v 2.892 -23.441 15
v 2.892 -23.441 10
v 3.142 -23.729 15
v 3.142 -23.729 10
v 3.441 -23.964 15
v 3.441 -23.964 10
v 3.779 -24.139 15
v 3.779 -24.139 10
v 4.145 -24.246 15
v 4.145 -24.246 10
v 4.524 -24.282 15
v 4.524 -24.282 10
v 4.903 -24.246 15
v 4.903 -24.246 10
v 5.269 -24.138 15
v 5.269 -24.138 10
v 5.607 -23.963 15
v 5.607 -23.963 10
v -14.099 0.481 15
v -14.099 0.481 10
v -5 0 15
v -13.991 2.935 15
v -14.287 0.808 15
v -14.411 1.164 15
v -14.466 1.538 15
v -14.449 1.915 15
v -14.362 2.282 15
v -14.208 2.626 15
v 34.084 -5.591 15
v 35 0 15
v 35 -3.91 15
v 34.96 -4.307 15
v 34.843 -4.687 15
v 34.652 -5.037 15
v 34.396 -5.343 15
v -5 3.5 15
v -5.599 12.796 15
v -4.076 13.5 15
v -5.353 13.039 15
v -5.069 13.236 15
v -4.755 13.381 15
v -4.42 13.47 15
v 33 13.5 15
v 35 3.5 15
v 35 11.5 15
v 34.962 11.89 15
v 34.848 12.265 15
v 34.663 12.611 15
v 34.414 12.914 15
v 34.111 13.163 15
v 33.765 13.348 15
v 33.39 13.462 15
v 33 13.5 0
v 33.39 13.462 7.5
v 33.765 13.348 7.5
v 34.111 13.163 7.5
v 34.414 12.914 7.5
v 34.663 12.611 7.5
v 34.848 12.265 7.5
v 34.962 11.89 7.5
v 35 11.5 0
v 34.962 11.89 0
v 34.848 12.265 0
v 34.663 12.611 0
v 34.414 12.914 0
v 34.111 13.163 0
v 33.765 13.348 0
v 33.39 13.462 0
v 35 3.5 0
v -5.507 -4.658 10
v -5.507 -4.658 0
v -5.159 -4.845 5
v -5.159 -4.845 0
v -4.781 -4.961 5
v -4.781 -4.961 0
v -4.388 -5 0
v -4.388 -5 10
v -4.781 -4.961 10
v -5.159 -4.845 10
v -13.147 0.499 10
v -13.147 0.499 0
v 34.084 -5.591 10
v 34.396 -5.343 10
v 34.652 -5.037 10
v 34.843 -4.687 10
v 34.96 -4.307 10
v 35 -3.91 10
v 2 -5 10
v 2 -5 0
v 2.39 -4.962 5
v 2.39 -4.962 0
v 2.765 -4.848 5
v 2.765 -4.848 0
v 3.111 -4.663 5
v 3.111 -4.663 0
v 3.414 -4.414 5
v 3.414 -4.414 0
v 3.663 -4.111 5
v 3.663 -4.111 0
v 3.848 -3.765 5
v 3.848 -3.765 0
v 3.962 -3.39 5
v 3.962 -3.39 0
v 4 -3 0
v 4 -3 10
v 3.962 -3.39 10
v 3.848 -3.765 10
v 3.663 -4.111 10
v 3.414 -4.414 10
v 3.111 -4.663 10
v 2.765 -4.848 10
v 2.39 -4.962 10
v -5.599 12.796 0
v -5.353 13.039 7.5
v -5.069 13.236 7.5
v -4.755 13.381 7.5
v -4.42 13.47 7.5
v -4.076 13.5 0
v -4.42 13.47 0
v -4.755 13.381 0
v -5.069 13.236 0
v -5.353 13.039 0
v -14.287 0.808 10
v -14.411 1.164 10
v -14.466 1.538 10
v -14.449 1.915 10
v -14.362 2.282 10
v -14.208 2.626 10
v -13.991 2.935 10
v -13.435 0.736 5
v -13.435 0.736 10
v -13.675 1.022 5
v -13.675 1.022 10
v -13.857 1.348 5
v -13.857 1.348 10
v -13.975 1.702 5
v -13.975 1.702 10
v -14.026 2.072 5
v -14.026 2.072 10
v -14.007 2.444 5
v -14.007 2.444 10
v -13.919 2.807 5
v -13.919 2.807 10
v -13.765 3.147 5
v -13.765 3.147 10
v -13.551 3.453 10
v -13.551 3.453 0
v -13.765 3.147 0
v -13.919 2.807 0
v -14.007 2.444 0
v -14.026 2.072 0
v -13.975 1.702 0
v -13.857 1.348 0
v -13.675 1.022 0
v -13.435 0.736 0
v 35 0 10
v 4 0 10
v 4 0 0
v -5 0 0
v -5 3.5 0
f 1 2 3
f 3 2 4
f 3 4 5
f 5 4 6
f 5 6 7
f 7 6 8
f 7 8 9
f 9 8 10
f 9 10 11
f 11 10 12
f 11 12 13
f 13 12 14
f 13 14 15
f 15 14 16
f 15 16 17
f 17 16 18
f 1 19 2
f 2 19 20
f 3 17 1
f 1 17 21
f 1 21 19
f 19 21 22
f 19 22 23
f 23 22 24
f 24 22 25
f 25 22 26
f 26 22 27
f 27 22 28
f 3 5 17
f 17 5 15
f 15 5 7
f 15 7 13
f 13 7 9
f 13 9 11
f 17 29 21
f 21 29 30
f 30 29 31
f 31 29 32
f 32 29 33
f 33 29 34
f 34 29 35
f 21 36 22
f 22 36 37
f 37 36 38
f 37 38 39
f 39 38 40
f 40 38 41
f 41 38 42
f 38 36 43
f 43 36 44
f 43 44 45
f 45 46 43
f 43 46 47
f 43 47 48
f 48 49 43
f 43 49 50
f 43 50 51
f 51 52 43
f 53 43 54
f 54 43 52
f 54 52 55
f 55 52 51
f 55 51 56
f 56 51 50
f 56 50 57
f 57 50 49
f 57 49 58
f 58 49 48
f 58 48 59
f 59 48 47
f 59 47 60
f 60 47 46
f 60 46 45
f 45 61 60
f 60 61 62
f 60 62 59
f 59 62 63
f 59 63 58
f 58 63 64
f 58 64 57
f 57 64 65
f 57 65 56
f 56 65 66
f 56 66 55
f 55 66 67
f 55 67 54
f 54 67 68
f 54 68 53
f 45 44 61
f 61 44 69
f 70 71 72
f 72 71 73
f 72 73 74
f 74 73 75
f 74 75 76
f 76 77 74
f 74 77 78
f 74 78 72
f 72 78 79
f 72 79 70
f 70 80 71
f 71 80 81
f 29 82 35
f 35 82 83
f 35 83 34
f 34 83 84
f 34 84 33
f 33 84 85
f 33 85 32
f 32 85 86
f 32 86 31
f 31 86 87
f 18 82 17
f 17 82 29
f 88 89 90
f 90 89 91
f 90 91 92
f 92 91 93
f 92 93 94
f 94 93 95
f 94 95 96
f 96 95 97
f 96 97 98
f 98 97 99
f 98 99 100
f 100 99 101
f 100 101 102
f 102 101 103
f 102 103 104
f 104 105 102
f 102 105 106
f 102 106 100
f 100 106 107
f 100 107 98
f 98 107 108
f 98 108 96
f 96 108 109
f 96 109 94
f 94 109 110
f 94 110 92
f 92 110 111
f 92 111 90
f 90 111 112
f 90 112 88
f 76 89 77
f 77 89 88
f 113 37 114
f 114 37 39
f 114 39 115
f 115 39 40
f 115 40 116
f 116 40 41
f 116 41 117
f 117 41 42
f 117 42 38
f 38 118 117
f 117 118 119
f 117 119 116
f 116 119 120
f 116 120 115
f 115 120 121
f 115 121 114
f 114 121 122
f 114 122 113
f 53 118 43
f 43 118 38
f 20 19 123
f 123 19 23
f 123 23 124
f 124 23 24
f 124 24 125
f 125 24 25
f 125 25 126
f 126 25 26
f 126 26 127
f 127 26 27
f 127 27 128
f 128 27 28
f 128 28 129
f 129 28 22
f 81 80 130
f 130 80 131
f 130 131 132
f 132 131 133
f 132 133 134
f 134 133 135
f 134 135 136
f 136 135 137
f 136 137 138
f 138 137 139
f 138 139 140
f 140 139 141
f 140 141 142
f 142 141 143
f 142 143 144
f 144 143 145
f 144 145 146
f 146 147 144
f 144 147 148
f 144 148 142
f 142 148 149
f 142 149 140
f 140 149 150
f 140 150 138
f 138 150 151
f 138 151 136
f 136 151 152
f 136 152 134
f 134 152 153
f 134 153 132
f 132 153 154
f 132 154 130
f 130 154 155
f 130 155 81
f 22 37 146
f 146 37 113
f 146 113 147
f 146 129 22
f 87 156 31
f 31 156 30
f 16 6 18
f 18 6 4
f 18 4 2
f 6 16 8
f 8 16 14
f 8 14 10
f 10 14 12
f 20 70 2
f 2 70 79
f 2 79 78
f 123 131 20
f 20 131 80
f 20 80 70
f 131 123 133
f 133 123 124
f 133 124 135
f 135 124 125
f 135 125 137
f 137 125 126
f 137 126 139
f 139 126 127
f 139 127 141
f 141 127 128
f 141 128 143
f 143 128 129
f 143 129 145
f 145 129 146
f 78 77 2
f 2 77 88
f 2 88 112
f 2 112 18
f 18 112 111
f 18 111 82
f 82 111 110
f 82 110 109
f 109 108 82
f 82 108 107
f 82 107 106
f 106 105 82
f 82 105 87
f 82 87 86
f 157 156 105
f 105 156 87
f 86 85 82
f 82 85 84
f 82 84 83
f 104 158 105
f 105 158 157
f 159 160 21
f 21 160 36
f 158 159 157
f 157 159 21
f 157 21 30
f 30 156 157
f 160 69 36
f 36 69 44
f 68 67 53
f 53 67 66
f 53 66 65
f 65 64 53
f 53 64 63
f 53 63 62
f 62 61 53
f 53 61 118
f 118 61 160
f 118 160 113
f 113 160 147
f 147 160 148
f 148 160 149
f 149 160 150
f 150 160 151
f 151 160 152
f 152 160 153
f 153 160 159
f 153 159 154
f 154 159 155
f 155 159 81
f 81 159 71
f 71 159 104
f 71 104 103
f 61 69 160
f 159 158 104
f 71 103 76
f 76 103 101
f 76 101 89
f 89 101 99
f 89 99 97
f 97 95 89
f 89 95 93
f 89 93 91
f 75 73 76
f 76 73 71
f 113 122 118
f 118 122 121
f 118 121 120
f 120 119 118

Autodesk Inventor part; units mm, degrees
ref_plane "YZ Plane" through (0, 0, 0) normal (1, 0, 0) x (0, 1, 0)
ref_plane "XZ Plane" through (0, 0, 0) normal (0, 1, 0) x (-1, 0, 0)
ref_plane "XY Plane" through (0, 0, 0) normal (0, 0, 1) x (1, 0, 0)
sketch "Sketch1" plane through (0, 0, 0) normal (0, 0, 1) x (1, 0, 0)
  line L0 (0, 0) -> (4, 0)
  line L1 (4, 0) -> (4, -5)
  line L2 (4, -5) -> (0, -5)
  line L3 (0, -5) -> (0, 0)
  line L4 (0, -5) -> (-5, -5)
  line L5 (-5, -5) -> (-5, 0)
  line L6 (-5, 0) -> (0, 0)
  line L7 (0, 0) -> (0, -5)
  line L8 (-5, 0) -> (0, 0)
  line L9 (0, 0) -> (0, 3.5)
  line L10 (0, 3.5) -> (-5, 3.5)
  line L11 (-5, 3.5) -> (-5, 0)
  line L12 (-5, 3.5) -> (35, 3.5)
  line L13 (35, 3.5) -> (35, 13.5)
  line L14 (35, 13.5) -> (-5, 13.5)
  line L15 (-5, 13.5) -> (-5, 3.5)
  line L16 (-5, 1.75) -> (-15, 1.75)
  line L17 (-15, 1.75) -> (-5, 13.5)
  line L18 (-15, 1.75) -> (-5, -5)
  dimension "d0" = 4
  dimension "d1" = 5
  dimension "d2" = 5
  dimension "d3" = 3.5
  dimension "d4" = 40
  dimension "d5" = 10
  dimension "d6" = 10
extrude "Extrusion1" add sketch "Sketch1" along normal blind 15 contours L0 L1 L2 L3 | L3 L4 L5 L6 | L5 L18 L16 L11 | L10 L15 L14 L13 L12 | L16 L17 L15 L11
sketch "Sketch2" plane through (0, 0, 15) normal (0, 0, 1) x (1, 0, 0)
  line L0 (4, -5) -> (4, 0) projected
  line L1 (4, 0) -> (35, 0)
  line L2 (35, 0) -> (35, -5)
  line L3 (35, -5) -> (4, -5)
  line L4 (4, -5) -> (4, 0)
  line L5 (4, -5) -> (4, -25)
  line L6 (-15, 1.75) -> (-5, -5) projected
  line L7 (4, -25) -> (-15, 1.75)
  line L8 (-5, -5) -> (4, -5) projected
  line L9 (-15, 1.75) -> (-5, -5)
  line L10 (-5, -5) -> (4, -5)
  line L11 (4, -25) -> (35, -5)
  point P0 (0, 0)
  dimension "d9" = 5
  dimension "d13" = 20
extrude "Extrusion2" add sketch "Sketch2" against normal blind 5
fillet "Fillet1" radius 2 8 edges at (-15, 1.75, 5) (-15, 1.75, 12.5) (-5, 13.5, 7.5) (4, -5, 5) (35, -5, 12.5) (-5, -5, 5) (35, 13.5, 7.5) (4, -25, 12.5)
properties part number "tapeStopper_3DPrint"
